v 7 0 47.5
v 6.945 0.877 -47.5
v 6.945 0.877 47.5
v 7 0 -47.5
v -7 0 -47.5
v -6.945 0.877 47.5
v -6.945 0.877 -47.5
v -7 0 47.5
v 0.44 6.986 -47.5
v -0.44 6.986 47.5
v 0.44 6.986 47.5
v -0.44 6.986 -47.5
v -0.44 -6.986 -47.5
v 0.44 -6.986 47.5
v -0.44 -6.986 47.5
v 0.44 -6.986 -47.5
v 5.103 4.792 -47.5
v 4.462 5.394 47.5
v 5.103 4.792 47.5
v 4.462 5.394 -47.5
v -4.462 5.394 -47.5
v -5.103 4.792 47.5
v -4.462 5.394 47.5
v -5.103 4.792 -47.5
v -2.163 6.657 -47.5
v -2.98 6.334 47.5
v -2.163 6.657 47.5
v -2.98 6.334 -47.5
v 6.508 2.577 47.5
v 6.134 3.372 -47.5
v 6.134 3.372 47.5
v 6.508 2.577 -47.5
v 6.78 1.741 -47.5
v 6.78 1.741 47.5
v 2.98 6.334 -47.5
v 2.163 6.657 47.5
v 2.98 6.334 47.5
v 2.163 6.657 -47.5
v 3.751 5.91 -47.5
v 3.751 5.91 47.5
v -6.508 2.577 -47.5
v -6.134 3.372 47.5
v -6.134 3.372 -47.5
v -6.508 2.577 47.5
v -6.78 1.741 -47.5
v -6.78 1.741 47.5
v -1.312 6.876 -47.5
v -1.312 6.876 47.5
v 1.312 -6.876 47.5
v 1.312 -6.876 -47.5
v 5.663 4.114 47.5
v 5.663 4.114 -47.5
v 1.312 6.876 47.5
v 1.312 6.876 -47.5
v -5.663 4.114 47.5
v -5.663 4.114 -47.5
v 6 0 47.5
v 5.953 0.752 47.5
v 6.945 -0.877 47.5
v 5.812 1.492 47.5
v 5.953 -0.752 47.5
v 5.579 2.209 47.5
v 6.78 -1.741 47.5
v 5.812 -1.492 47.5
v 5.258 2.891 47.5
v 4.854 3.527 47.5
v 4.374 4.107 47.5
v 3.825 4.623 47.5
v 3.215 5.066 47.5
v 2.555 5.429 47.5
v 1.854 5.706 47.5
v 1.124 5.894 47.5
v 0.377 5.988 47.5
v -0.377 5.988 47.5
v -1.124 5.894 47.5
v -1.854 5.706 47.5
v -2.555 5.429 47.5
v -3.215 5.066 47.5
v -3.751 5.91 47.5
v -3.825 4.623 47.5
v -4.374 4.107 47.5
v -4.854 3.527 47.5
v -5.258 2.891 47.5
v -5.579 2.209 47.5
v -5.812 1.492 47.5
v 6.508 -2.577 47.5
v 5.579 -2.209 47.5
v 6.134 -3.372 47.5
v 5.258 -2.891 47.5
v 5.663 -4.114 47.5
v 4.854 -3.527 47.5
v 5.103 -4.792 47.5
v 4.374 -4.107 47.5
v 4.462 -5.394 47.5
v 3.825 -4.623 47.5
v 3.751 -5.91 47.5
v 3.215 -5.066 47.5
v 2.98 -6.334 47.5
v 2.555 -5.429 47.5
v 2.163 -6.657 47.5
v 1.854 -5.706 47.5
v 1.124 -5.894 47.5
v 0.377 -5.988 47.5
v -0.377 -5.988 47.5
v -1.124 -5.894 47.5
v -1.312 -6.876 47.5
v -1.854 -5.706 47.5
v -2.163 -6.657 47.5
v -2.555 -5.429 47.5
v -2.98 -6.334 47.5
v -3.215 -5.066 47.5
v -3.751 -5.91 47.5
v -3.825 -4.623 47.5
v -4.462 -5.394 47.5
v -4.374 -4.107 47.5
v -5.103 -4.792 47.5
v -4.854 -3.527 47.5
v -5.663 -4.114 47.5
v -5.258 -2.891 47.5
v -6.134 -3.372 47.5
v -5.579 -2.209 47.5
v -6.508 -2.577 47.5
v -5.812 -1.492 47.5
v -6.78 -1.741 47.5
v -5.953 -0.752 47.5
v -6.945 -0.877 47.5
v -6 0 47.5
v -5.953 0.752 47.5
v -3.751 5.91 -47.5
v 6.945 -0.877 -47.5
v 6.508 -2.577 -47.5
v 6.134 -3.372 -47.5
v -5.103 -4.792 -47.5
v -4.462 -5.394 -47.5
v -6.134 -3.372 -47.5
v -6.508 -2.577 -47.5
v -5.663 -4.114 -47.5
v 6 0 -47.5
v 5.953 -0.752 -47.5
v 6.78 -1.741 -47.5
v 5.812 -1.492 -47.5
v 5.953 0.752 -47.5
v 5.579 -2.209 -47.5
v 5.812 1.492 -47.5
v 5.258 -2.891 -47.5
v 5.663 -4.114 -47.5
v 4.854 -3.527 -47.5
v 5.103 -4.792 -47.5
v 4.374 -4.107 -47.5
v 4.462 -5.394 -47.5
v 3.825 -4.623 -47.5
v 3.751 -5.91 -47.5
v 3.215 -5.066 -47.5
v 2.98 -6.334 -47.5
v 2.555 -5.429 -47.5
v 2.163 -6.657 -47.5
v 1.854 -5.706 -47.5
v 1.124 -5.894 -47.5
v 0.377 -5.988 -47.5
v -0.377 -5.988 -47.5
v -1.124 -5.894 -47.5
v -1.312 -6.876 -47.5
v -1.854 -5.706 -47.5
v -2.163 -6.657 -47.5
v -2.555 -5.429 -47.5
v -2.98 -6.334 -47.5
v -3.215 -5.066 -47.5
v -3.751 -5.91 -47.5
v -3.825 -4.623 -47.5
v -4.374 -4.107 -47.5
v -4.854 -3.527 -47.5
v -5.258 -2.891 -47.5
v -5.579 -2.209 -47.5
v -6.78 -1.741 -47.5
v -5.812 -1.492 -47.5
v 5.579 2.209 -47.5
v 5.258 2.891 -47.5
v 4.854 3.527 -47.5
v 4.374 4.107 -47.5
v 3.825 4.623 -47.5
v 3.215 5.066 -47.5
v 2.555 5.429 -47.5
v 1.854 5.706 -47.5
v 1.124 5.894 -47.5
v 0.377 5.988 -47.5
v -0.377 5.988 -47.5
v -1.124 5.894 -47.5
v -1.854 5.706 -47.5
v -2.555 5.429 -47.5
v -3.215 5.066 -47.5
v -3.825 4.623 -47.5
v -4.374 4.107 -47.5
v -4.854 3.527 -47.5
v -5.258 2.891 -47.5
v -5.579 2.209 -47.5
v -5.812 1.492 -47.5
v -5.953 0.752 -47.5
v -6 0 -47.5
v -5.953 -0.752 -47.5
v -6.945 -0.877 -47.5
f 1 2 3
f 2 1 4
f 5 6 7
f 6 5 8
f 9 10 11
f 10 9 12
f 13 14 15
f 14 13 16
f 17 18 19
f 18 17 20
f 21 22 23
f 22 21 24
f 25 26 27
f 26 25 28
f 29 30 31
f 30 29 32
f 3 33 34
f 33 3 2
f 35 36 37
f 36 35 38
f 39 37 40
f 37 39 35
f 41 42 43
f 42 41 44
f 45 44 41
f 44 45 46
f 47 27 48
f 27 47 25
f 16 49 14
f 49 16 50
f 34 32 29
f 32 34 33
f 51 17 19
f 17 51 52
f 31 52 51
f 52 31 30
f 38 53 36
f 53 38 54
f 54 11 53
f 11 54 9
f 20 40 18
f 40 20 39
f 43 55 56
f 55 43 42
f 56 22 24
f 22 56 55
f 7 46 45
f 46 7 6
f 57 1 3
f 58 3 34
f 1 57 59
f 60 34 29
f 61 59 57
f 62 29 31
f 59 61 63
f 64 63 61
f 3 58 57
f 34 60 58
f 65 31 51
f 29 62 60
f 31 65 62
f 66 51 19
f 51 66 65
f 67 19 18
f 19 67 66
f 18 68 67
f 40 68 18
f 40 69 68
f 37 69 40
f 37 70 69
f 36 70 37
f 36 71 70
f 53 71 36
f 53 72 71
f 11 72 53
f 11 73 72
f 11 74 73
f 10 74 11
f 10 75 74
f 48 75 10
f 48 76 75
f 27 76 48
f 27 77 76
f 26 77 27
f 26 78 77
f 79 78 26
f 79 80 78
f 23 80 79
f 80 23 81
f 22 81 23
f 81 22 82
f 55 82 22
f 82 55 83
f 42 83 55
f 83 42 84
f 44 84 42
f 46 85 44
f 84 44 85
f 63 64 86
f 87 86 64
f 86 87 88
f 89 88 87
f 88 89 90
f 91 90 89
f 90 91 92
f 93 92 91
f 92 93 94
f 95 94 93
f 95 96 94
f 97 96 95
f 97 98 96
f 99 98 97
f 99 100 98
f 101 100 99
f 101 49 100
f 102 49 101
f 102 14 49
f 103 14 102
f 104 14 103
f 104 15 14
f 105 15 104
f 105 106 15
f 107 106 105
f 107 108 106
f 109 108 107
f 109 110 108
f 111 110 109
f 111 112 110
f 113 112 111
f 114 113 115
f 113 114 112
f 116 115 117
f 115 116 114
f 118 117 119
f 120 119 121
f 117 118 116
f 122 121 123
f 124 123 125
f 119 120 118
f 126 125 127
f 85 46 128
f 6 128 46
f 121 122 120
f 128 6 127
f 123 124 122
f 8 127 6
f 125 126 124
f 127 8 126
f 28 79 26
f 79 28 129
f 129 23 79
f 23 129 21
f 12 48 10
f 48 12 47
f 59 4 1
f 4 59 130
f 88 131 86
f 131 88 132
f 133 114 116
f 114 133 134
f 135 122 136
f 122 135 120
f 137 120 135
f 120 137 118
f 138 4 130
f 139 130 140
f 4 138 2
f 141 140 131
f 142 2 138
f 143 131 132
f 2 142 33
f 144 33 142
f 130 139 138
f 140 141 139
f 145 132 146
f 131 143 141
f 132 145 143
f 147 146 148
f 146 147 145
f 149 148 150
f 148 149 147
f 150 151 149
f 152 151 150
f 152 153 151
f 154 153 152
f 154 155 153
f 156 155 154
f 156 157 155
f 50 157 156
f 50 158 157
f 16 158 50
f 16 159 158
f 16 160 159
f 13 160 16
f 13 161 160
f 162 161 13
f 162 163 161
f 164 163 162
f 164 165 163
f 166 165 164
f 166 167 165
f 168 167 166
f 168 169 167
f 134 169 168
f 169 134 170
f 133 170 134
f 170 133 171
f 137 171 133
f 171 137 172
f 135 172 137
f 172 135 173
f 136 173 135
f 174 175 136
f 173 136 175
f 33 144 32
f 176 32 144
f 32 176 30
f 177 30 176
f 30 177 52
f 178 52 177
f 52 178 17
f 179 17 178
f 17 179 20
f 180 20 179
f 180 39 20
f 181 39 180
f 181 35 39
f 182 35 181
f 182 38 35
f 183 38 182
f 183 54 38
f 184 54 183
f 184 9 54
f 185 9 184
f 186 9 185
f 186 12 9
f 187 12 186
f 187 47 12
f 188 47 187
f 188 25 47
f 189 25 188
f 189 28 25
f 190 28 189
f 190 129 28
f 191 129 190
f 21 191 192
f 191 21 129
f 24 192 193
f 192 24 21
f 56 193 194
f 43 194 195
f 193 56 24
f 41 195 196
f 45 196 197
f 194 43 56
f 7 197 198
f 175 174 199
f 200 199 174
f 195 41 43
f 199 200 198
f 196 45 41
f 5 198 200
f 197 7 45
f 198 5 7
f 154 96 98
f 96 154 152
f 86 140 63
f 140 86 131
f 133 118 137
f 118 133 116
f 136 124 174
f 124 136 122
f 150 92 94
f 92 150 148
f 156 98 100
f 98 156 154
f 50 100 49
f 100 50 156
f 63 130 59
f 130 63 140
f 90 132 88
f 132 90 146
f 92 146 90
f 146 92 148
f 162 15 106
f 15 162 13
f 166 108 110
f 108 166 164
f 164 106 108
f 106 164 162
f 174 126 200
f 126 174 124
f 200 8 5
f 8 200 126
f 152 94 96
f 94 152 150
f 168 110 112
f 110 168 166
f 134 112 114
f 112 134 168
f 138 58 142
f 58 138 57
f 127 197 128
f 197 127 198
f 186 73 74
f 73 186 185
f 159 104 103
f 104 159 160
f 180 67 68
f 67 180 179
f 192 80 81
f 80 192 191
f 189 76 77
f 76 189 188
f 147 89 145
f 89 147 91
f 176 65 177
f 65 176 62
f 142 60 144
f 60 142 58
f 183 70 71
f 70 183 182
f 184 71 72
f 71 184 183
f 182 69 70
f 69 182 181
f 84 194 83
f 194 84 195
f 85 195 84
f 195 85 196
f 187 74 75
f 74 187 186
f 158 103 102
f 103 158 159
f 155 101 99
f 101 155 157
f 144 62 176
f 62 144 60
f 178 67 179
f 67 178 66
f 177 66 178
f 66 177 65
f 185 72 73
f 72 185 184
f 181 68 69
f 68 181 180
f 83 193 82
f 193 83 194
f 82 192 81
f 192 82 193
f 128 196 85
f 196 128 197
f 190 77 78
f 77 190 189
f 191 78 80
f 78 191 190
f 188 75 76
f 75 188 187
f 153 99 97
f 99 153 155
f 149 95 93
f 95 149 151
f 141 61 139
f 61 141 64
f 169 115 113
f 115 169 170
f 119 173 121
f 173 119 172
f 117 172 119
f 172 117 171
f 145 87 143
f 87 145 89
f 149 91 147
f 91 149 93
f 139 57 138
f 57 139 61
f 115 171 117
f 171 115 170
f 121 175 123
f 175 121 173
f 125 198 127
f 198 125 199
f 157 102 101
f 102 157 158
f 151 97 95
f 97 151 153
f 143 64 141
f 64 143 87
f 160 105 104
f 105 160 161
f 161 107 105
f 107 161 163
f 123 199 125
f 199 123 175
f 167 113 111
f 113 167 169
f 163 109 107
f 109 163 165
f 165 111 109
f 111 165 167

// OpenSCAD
$fn = 50;


difference() {
	union() {
		translate(v = [0, 0, -47.5000000000]) {
			cylinder(h = 95, r = 7.0000000000);
		}
	}
	union() {
		translate(v = [0, 0, -100.0000000000]) {
			cylinder(h = 200, r = 6);
		}
	}
}
